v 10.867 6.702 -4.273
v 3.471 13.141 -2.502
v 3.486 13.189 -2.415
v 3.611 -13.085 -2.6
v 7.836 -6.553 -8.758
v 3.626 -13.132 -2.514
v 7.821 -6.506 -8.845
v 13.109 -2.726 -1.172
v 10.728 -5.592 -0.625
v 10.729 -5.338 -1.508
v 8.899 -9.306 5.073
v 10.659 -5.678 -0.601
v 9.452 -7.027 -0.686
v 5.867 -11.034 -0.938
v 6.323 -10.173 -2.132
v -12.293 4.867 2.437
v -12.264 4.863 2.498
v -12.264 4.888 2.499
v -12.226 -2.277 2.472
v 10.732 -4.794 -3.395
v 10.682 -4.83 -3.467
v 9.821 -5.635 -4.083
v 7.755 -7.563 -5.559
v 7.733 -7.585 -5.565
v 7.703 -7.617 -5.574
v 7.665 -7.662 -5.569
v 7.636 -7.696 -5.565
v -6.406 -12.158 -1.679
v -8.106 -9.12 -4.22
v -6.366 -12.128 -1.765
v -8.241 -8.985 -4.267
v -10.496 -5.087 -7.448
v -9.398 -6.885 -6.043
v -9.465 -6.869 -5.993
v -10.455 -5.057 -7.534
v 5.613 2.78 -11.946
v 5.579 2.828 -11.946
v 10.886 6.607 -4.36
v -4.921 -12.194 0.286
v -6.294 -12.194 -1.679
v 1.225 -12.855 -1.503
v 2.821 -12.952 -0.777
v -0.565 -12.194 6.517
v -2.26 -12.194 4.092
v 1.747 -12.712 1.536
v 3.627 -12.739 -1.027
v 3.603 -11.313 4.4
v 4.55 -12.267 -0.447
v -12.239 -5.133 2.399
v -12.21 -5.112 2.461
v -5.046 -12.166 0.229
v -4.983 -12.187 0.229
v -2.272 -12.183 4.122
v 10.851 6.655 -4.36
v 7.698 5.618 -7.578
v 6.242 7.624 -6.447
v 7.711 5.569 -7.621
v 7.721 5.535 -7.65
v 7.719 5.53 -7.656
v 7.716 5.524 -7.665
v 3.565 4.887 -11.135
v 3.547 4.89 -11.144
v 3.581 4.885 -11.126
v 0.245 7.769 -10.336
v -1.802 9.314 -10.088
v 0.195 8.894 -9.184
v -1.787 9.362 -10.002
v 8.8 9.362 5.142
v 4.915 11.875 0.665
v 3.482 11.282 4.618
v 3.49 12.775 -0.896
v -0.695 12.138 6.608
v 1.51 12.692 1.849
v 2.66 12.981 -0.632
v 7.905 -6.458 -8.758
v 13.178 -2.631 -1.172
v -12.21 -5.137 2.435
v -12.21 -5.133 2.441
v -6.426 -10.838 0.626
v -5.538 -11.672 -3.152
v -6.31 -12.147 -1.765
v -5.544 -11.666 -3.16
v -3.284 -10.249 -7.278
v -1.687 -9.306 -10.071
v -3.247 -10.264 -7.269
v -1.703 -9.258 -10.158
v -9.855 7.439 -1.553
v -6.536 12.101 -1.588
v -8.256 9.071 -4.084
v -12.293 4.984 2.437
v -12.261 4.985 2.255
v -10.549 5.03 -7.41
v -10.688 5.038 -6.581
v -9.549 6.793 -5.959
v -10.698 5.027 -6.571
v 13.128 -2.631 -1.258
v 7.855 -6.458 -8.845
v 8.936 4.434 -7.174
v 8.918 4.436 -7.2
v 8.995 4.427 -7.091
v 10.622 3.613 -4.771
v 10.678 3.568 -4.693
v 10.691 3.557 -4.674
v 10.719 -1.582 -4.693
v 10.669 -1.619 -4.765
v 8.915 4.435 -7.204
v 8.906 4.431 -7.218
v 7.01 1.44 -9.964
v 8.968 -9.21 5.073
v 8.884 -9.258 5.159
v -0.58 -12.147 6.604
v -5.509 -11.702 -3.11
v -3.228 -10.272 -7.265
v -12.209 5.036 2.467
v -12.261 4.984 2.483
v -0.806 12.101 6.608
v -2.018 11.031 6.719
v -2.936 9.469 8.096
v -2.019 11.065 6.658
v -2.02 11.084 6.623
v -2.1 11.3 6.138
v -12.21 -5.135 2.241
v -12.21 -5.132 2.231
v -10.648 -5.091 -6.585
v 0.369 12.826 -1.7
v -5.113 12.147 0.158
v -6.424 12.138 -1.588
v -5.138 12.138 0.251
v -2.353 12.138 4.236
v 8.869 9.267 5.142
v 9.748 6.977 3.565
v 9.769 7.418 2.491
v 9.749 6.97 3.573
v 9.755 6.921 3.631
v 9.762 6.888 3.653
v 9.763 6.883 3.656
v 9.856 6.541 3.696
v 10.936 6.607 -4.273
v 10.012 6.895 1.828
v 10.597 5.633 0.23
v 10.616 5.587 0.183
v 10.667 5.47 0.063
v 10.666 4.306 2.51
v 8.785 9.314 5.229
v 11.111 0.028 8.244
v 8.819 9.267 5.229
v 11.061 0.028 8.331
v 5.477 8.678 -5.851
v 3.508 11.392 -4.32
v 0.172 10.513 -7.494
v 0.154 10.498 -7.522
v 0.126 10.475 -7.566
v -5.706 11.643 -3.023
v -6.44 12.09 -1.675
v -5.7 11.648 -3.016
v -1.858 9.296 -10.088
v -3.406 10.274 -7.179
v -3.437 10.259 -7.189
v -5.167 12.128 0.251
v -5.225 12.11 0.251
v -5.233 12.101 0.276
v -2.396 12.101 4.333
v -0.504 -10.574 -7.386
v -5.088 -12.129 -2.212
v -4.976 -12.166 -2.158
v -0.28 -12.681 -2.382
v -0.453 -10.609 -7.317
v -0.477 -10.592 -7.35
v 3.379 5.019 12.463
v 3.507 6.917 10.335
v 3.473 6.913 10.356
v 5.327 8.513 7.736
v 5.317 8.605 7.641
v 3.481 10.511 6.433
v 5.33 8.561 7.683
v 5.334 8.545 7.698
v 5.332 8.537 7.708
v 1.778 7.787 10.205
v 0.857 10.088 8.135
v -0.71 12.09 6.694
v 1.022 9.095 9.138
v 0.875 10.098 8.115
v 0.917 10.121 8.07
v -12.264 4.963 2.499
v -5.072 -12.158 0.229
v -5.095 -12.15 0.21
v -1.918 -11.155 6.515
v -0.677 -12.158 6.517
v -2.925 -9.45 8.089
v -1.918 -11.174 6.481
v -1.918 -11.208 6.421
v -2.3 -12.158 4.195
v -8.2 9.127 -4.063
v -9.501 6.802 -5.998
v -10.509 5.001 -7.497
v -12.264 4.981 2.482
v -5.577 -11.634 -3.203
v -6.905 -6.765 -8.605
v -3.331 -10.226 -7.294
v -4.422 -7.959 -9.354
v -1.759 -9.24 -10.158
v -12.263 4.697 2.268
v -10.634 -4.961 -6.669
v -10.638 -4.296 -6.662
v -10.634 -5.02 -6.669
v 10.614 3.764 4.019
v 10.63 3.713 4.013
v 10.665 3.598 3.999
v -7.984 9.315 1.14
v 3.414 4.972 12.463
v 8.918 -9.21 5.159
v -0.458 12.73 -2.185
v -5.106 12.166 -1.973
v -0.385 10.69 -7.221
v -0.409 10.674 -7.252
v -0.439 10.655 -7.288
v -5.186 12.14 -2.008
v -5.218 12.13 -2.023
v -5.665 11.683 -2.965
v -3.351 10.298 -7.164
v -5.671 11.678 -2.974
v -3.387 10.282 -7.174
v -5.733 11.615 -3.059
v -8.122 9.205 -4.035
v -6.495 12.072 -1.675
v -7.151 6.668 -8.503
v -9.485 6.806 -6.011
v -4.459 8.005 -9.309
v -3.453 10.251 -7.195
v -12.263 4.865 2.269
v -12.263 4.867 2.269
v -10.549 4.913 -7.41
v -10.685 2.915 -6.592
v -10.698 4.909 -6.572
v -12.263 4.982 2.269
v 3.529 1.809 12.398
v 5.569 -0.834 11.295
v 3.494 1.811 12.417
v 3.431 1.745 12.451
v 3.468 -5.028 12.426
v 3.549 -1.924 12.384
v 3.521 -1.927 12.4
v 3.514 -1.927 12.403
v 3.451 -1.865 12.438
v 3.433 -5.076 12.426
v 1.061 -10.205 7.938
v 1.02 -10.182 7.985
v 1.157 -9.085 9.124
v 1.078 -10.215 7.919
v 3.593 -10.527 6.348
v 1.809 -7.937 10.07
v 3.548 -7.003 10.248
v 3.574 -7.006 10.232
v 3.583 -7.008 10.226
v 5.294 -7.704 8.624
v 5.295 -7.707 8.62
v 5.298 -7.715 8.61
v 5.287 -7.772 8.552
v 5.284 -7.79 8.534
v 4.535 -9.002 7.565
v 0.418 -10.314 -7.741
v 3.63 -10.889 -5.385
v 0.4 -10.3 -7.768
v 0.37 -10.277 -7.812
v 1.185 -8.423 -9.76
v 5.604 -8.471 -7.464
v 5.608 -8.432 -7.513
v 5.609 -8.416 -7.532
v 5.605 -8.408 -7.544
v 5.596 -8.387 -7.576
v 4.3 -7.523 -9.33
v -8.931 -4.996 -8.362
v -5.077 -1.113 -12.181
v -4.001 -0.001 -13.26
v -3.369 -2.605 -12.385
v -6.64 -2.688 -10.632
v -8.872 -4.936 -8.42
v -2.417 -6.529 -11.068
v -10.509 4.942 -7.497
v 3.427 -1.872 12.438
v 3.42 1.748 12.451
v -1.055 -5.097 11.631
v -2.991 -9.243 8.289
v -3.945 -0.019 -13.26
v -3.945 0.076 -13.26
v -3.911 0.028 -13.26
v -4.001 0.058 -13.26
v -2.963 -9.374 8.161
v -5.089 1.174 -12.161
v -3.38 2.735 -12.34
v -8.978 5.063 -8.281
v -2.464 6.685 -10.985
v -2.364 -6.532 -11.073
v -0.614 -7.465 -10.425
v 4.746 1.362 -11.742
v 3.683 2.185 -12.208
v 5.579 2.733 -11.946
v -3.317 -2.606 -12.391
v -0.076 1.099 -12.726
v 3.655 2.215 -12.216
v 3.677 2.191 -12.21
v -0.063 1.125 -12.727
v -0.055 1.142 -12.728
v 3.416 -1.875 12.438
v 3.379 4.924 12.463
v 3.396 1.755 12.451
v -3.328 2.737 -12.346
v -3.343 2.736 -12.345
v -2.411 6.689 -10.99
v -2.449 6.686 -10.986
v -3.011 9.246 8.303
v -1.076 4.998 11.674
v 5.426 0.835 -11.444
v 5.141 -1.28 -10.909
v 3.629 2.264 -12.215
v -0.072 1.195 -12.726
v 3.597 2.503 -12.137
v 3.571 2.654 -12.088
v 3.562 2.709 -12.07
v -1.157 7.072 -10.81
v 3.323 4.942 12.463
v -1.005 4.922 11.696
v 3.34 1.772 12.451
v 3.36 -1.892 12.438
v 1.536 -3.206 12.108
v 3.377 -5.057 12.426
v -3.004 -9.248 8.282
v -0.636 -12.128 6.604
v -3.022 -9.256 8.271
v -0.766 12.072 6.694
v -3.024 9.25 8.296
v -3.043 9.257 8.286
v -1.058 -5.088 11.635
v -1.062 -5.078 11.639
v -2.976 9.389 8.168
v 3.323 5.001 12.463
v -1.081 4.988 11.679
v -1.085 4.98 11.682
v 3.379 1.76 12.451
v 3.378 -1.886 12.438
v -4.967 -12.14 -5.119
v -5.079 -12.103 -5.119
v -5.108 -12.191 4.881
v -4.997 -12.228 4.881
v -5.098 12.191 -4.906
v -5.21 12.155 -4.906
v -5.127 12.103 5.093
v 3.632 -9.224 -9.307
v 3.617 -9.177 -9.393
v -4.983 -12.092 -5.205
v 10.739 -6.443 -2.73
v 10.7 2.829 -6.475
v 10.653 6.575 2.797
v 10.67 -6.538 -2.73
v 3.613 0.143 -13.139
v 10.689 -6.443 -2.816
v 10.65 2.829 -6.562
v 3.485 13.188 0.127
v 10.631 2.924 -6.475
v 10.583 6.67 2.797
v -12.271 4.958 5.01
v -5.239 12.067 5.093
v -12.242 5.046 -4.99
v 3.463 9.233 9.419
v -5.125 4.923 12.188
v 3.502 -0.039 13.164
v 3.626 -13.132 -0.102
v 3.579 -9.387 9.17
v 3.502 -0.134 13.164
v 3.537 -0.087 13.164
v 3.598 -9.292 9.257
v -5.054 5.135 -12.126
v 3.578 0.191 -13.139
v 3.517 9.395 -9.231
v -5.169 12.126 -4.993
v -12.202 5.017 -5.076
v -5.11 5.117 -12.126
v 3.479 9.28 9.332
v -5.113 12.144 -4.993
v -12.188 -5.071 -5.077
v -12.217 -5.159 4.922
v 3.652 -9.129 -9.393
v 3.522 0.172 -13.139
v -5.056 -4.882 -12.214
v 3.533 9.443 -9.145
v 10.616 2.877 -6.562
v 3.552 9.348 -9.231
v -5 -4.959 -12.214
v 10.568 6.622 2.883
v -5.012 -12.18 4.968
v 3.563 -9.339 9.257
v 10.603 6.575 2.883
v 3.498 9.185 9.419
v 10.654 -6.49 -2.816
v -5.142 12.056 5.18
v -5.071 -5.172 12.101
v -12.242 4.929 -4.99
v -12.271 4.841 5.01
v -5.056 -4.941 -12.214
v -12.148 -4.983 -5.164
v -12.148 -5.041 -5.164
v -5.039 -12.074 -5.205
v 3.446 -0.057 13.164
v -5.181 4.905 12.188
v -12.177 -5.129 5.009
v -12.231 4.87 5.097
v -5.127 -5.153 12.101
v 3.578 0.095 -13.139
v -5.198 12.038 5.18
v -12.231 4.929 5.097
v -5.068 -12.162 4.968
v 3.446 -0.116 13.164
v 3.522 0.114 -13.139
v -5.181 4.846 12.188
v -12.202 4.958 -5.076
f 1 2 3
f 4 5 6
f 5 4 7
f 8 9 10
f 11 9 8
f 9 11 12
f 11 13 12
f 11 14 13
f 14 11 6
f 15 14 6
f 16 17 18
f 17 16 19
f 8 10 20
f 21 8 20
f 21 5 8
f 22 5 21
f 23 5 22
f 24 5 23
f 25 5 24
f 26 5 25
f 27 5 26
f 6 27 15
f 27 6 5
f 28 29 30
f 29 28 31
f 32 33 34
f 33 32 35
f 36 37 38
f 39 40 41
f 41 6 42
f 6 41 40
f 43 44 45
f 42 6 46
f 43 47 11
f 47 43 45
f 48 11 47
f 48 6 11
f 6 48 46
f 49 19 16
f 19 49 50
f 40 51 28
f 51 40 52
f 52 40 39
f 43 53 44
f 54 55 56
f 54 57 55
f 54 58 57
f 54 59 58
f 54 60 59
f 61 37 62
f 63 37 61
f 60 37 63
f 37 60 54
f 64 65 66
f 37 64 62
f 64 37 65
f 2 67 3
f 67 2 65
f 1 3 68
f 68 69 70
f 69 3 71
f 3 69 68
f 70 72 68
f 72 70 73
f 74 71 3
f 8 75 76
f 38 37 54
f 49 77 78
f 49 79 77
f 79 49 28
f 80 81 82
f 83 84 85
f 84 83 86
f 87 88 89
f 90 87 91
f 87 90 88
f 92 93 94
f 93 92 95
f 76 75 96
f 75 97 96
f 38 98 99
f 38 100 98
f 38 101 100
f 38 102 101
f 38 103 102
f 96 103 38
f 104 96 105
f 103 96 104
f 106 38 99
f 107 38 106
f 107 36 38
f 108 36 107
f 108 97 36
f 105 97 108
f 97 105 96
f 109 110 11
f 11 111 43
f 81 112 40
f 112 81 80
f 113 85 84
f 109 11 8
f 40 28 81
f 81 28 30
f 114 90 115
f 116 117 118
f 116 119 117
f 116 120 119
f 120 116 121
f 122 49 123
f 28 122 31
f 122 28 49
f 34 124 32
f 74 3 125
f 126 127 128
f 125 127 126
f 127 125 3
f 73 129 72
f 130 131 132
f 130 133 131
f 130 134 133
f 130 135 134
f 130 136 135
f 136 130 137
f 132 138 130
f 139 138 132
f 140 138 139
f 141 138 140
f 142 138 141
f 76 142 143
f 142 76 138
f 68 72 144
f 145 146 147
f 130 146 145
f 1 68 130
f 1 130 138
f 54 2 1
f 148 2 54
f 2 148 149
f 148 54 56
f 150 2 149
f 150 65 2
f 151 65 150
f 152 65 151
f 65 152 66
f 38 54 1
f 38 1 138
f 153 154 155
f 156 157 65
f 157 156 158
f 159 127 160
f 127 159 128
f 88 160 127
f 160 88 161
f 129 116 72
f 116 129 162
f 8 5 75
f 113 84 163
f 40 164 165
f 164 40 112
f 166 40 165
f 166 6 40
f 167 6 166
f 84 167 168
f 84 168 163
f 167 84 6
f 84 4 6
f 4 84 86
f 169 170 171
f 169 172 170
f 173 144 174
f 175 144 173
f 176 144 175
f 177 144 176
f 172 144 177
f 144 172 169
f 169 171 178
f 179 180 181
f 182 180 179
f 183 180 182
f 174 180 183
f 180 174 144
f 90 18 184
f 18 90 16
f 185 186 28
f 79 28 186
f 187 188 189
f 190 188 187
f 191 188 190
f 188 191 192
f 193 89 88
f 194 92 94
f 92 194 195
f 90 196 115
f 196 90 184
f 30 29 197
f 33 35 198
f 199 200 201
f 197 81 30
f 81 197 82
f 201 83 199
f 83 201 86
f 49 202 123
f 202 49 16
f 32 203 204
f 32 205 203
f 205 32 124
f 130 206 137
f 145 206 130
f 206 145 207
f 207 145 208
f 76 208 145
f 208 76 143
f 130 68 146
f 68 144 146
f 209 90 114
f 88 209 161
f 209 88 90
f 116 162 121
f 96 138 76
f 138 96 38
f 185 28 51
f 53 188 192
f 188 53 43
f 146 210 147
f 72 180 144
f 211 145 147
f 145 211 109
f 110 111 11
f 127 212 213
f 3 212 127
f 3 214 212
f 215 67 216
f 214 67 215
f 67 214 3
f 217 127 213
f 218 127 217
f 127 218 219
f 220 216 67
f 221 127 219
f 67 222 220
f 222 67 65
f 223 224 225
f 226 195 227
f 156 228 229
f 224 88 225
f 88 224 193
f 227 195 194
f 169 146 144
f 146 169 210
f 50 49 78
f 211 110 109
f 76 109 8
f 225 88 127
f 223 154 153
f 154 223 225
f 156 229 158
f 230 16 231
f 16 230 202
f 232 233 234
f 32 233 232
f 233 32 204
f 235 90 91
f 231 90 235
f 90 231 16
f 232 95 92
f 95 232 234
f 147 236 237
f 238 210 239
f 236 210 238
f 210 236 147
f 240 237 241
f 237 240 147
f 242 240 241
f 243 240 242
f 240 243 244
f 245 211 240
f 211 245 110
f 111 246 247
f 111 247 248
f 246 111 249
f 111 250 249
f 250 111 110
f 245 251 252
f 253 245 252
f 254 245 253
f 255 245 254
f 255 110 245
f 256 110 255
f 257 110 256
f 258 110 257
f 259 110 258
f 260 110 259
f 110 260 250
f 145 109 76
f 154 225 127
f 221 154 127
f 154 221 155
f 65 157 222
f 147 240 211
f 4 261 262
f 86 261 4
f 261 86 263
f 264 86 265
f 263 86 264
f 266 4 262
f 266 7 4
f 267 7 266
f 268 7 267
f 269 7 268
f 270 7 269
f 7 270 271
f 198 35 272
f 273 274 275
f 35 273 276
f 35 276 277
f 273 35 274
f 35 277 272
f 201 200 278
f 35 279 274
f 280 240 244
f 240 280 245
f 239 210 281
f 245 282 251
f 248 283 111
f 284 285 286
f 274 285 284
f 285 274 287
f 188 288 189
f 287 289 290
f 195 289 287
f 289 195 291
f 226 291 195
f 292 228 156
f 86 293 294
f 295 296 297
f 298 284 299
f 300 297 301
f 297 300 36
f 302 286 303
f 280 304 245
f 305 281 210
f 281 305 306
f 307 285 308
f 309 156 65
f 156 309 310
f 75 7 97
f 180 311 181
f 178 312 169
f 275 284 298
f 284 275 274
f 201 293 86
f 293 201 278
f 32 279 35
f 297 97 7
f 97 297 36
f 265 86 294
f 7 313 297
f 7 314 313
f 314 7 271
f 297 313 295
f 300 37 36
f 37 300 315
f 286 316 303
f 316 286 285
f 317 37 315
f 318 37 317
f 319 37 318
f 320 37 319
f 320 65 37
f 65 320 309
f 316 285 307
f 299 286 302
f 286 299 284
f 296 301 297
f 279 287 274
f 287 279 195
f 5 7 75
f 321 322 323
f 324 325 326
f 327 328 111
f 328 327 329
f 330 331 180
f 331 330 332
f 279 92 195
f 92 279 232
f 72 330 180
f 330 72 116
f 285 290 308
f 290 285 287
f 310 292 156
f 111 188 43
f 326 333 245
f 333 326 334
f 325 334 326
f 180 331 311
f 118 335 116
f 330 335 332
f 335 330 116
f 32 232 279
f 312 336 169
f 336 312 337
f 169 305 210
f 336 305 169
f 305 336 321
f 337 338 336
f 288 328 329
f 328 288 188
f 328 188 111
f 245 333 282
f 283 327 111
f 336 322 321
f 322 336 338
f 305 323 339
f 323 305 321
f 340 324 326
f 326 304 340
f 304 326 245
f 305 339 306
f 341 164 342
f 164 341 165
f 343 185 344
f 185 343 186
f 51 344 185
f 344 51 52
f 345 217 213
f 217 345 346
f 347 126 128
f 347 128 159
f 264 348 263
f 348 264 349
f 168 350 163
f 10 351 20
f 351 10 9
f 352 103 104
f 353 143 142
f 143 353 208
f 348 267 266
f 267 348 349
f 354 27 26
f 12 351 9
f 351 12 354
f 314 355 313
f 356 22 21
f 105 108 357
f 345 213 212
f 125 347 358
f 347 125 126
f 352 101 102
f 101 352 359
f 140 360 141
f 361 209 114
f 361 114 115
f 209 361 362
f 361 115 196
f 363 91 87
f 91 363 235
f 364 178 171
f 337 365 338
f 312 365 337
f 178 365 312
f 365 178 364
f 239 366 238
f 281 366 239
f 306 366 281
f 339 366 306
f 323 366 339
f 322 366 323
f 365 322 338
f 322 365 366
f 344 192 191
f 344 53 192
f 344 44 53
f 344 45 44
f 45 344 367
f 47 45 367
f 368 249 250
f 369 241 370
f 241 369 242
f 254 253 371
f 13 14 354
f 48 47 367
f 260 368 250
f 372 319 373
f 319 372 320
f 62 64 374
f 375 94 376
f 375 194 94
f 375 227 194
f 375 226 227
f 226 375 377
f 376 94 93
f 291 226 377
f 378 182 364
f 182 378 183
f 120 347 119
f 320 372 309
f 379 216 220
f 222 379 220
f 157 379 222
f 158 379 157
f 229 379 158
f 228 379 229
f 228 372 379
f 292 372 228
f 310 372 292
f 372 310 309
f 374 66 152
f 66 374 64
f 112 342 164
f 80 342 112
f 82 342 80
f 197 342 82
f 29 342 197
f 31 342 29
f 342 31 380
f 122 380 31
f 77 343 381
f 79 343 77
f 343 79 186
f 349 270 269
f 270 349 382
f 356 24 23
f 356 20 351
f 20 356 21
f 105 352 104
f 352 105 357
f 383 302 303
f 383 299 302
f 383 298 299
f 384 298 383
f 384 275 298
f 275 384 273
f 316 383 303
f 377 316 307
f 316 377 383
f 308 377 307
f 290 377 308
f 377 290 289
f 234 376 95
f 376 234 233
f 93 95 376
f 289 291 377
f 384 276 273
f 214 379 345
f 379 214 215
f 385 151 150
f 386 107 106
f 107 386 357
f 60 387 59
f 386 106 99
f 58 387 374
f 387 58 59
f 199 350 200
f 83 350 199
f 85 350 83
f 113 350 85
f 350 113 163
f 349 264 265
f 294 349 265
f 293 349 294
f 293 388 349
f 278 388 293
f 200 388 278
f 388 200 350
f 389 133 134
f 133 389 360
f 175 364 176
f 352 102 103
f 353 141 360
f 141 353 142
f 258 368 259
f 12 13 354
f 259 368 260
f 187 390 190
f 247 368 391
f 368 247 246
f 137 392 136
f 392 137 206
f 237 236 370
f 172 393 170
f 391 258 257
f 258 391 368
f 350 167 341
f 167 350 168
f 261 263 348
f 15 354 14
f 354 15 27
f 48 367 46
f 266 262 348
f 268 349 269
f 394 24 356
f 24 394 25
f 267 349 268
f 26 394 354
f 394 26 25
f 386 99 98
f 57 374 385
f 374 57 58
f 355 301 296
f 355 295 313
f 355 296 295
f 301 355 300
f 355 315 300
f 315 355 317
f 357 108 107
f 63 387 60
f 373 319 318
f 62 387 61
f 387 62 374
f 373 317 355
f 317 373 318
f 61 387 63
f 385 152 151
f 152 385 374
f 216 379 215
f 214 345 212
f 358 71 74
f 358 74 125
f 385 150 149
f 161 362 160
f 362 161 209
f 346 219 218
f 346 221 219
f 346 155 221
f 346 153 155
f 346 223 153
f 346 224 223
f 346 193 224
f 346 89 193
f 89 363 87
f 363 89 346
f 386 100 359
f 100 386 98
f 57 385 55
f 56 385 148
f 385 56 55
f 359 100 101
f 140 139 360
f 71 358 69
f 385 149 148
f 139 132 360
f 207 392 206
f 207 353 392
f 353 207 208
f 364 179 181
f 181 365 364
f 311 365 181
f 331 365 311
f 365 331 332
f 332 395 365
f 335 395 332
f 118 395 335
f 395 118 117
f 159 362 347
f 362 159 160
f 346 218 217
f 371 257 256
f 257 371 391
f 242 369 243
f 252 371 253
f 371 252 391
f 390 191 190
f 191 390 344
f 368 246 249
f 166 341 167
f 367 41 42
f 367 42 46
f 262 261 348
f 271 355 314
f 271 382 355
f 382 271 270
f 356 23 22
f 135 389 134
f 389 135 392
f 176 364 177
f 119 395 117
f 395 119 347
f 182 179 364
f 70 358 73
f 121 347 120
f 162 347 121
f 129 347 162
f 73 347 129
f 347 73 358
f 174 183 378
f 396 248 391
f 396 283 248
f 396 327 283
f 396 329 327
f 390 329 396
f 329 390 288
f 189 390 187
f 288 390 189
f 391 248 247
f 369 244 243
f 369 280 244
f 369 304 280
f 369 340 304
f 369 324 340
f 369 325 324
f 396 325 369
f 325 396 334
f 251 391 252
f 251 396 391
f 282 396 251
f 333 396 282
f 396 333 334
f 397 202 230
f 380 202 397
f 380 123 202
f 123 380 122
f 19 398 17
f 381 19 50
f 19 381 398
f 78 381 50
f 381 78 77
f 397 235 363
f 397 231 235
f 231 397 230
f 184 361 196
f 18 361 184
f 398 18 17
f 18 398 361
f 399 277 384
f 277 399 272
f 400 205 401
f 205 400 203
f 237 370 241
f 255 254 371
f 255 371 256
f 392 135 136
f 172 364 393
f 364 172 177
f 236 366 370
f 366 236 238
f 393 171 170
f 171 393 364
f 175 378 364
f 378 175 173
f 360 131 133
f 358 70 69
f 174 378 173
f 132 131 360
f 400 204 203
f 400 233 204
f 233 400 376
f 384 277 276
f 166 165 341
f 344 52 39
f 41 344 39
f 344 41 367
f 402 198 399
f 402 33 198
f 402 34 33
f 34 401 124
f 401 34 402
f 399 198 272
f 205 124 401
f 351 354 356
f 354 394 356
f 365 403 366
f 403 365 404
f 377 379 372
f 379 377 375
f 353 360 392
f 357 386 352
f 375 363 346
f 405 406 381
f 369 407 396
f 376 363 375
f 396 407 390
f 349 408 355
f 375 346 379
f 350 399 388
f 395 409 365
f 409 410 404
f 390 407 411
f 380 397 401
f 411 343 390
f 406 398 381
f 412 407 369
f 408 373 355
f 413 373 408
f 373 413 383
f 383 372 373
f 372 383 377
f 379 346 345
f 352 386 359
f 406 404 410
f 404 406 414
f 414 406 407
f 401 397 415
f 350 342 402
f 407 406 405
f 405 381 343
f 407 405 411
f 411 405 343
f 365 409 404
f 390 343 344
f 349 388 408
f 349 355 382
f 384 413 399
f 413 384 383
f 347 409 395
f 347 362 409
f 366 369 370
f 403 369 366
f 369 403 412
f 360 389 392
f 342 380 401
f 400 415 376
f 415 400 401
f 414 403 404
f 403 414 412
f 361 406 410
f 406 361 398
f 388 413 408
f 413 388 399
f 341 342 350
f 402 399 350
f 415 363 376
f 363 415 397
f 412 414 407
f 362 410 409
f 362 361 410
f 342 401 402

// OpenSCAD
// Auto-generated OpenSCAD file

    inner_points = 10*[[-0.5027427746732974, -1.2132577404539668, 0.4881043623012211], [-0.499831290049384, -1.204459418490458, -0.5118526931706182], [-0.5157776363132736, 1.200827522309684, 0.5093072214379191], [-0.5128661516893601, 1.2096258442731929, -0.49064983403392026], [-0.5086193277767076, -0.5124098904764615, 1.201390950781287], [-0.501590382111015, -0.4911688622660335, -1.2127189343294926], [-0.5140185442516425, 0.48753696608525965, 1.2101734625967935], [-0.5069895985859499, 0.5087779942956876, -1.2039364225139861], [0.359529337093046, -1.3036867530634884, -0.010202168810380517], [0.34542050452204526, 1.3093003061927015, 0.012747640543079655], [0.3486708828251333, -0.00868878506597237, 1.3077795910126873], [0.356278958789958, 0.014302338195185572, -1.3052341192799881], [0.35477328534708075, -0.9291522473942972, 0.9169986098966502], [0.36015300745359075, -0.9128950682292366, -0.9306811039847213], [0.34479683416150053, 0.9185086213584498, 0.9332265757174204], [0.3501765562680105, 0.9347658005235104, -0.914453138163951], [-1.2136540747107942, -0.5099881151558083, 0.492222324416665], [-1.210742590086881, -0.5011897931922996, -0.5077347310551743], [-1.2190532911857292, 0.4899587414059127, 0.5010048362321716], [-1.2161418065618157, 0.49875706336942155, -0.49895221923966776], [1.063883448467321, -0.6442596016793936, -0.2729589342943806], [1.0552533480577226, 0.6574723104142199, 0.27968882911738335], [1.0591273967213557, -0.26972509601020234, 0.6542418444126501], [1.0600093998036881, 0.2829378047450287, -0.6475119495896475]];

    outer_points = 10*[[0.3363850936800798, 0.49717027434153493, 1.2376593574683699], [0.341756318462831, -0.5028082510208011, 1.2339045261138102], [-1.0468325897833741, 0.49717027434153493, -0.7410108942158731], [-1.041461365000623, -0.5028082510208011, -0.7447657255704329], [-0.07254801541637895, 1.2042618706661667, 0.6607753251951688], [-0.05958073169930672, -1.2098998473454328, 0.6517103604145671], [-0.6454955396212365, 1.2042618706661667, -0.1588167285166301], [-0.6325282559041643, -1.2098998473454328, -0.16788169329723182], [1.1011301516039498, 0.002818988339633091, 0.8244018077378379], [-0.3960538802834066, 0.002818988339633091, -1.317295439635775], [0.3455202922831028, 1.3093538952497537, -0.2415408923617442], [0.35955597903744035, -1.3037159185704876, -0.2513527395361928], [0.8769102618348533, 0.926678680872714, 0.514226519320763], [0.8868349911174557, -0.9210407041934477, 0.5072884956477444], [-0.1817587197969125, 0.926678680872714, -1.0001821275456813], [-0.17183399051431014, -0.9210407041934477, -1.0071201512187], [-0.6482766395432775, 0.49253622567066274, 1.063246637982406], [-0.6429054147605264, -0.5074422996916733, 1.0594918066278463], [-1.2212241637481351, 0.49253622567066274, 0.24365458427060716], [-1.215852938965384, -0.5074422996916733, 0.23989975291604748], [1.3078142401788866, -0.26313920206751534, -0.11716493364872071], [0.5563153383297748, 0.27804527608852586, -1.1859814572497327], [1.0835943504097902, 0.6607204904655656, -0.4273402220657956], [0.7805352280988713, -0.6458144164445551, -0.8758061688326578]];

    // Convex hull for inner set (I)
    module inner_hull() {
        hull() {
            for (p = inner_points) {
                translate(p) sphere(r=0.1);
            }
        }
    }

    // Convex hull for outer set (O) minus inner hull (O \ I)
    module outer_minus_inner() {
        difference() {
            hull() {
                for (p = outer_points) {
                    translate(p) sphere(r=0.1);
                }
            }
            inner_hull(); // Subtract inner hull
        }
    }

    // Convex hull for outer set (O) minus all translated inner hulls
    module outer_minus_AllTranslationInner() {
        difference() {
            hull() {
                for (p = outer_points) {
                    translate(p) sphere(r=0.1);
                }
            }
            hull() {
                translate([0,0,50]) inner_hull();
                translate([0,0,-50]) inner_hull();
            }; // Subtract translated inner hulls
        }
    }

    // Difference between outer_minus_inner and outer_minus_AllTranslationInner
    module outer_minus_inner_diff() {
        difference() {
            // Outer minus inner
            difference() {
                hull() {
                    for (p = outer_points) {
                        translate(p) sphere(r=0.1);
                    }
                }
                inner_hull();
            }

            // Subtract Outer minus AllTranslationInner
            difference() {
                hull() {
                    for (p = outer_points) {
                        translate(p) sphere(r=0.1);
                    }
                }
                hull() {
                    translate([0,0,50]) inner_hull();
                    translate([0,0,-50]) inner_hull();
                };
            }
        }
    }

    // Rendering all with colors applied
    color([1, 0, 0, 0.5]) inner_hull(); // Transparent red
    color([0, 1, 0, 1]) outer_minus_AllTranslationInner(); // Opaque green
    color([1, 1, 0, 1]) outer_minus_inner_diff(); // Opaque yellow
    
